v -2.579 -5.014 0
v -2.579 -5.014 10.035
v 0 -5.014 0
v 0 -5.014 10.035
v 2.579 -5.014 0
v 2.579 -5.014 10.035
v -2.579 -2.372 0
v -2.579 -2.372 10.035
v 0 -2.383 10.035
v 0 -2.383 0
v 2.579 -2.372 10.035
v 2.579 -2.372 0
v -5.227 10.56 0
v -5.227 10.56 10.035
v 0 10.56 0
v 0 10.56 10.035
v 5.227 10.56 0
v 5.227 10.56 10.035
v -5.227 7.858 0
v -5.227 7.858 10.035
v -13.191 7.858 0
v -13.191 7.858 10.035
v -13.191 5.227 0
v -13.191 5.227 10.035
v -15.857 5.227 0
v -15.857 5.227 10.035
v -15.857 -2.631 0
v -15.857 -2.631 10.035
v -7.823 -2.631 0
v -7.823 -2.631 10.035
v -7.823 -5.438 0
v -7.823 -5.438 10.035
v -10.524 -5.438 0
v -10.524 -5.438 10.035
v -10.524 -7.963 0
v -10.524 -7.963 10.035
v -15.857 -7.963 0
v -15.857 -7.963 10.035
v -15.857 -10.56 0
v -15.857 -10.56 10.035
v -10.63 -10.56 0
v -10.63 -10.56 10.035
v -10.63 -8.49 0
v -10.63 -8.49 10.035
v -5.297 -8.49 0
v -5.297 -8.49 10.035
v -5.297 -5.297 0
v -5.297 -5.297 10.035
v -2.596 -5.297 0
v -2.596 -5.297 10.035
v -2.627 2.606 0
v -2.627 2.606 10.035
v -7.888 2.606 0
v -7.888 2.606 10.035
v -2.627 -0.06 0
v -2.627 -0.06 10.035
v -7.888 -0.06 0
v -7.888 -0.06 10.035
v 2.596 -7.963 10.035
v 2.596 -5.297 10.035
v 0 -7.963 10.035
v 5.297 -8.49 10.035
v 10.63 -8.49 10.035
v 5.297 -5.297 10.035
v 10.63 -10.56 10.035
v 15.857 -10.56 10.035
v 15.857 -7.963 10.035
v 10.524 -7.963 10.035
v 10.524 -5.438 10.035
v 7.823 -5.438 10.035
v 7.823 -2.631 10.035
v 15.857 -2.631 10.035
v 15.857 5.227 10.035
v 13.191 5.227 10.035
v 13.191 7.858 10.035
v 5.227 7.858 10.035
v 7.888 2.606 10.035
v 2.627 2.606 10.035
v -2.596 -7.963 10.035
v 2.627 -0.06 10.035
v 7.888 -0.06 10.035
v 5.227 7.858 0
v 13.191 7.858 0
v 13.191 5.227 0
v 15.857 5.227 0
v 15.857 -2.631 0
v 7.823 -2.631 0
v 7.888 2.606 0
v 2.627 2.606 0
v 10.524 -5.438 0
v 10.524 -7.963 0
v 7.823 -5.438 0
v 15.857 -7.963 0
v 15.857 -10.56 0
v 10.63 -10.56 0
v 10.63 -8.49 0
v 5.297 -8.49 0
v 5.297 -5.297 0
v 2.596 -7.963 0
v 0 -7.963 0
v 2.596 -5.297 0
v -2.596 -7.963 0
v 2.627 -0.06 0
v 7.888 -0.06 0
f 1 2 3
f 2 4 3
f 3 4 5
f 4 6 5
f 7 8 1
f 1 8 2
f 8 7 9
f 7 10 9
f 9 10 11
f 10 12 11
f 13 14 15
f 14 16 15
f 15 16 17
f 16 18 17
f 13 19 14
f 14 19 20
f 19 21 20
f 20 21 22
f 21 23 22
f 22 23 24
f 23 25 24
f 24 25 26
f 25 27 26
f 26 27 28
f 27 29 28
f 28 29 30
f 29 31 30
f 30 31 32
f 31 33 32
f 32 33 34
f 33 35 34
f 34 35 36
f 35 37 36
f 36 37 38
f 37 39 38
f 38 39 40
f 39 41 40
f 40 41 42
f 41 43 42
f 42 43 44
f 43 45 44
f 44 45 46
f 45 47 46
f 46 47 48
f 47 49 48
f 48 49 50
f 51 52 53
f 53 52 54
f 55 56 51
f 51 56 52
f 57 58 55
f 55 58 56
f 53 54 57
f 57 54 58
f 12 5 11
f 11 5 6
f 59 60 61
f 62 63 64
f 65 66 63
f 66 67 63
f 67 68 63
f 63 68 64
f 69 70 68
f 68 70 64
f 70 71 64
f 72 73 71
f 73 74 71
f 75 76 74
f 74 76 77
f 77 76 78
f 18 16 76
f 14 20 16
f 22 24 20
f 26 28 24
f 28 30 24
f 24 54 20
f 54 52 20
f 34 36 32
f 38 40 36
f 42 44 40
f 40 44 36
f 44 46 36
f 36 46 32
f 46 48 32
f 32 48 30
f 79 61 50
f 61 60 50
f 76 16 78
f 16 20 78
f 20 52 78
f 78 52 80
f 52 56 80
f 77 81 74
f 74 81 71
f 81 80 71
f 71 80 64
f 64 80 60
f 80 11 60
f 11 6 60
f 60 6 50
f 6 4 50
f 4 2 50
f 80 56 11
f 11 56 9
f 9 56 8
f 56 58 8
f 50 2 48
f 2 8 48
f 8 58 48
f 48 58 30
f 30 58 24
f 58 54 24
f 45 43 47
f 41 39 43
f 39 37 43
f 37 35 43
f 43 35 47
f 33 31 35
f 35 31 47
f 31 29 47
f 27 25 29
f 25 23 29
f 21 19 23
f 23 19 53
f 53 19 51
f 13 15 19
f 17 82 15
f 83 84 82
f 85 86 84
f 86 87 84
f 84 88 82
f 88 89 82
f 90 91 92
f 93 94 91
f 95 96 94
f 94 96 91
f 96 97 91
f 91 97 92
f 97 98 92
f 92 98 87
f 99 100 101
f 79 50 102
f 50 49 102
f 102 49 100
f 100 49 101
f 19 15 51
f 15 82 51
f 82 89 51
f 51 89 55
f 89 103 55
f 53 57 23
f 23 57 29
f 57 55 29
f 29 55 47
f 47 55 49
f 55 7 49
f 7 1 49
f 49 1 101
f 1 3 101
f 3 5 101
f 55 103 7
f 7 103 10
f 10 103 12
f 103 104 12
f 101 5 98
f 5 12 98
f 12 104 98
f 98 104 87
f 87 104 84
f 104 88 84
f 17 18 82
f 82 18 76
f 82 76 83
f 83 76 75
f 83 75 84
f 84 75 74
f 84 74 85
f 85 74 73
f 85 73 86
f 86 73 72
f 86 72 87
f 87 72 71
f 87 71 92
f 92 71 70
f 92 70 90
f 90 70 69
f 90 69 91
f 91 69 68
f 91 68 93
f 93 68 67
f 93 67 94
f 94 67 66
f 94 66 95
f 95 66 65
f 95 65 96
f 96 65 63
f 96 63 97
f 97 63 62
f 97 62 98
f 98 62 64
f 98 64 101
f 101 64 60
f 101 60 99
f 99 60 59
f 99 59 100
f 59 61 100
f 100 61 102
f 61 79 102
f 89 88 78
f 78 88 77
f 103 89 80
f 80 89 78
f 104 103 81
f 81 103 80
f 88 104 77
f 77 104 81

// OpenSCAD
module invaders_v2_3b()
{
	polyhedron(
		points=[
			[-2.579453, -5.014457, 4.440892e-16],
			[-2.579455, -5.014457, 10.03545],
			[-2.384186e-06, -5.014457, 5.125999e-06],
			[-2.579455, -5.014457, 10.03545],
			[-2.384186e-06, -5.014457, 10.03545],
			[-2.384186e-06, -5.014457, 5.125999e-06],
			[-2.384186e-06, -5.014457, 5.125999e-06],
			[-2.384186e-06, -5.014457, 10.03545],
			[2.579451, -5.014457, 4.440892e-16],
			[-2.384186e-06, -5.014457, 10.03545],
			[2.579451, -5.014457, 10.03545],
			[2.579451, -5.014457, 4.440892e-16],
			[-2.579453, -2.371966, 2.220446e-16],
			[-2.579455, -2.371966, 10.03545],
			[-2.579453, -5.014457, 4.440892e-16],
			[-2.579453, -5.014457, 4.440892e-16],
			[-2.579455, -2.371966, 10.03545],
			[-2.579455, -5.014457, 10.03545],
			[-2.579455, -2.371966, 10.03545],
			[-2.579453, -2.371966, 2.220446e-16],
			[-2.384186e-06, -2.38338, 10.03545],
			[-2.579453, -2.371966, 2.220446e-16],
			[-2.384186e-06, -2.38338, 5.125999e-06],
			[-2.384186e-06, -2.38338, 10.03545],
			[-2.384186e-06, -2.38338, 10.03545],
			[-2.384186e-06, -2.38338, 5.125999e-06],
			[2.579451, -2.371966, 10.03545],
			[-2.384186e-06, -2.38338, 5.125999e-06],
			[2.579451, -2.371966, 2.220446e-16],
			[2.579451, -2.371966, 10.03545],
			[-5.227128, 10.5595, 5.125999e-06],
			[-5.227128, 10.5595, 10.03545],
			[-2.384186e-06, 10.5595, 5.125999e-06],
			[-5.227128, 10.5595, 10.03545],
			[-2.384186e-06, 10.5595, 10.03545],
			[-2.384186e-06, 10.5595, 5.125999e-06],
			[-2.384186e-06, 10.5595, 5.125999e-06],
			[-2.384186e-06, 10.5595, 10.03545],
			[5.227125, 10.5595, 1.037121e-05],
			[-2.384186e-06, 10.5595, 10.03545],
			[5.227125, 10.5595, 10.03545],
			[5.227125, 10.5595, 1.037121e-05],
			[-5.227128, 10.5595, 5.125999e-06],
			[-5.227128, 7.858232, 5.125999e-06],
			[-5.227128, 10.5595, 10.03545],
			[-5.227128, 10.5595, 10.03545],
			[-5.227128, 7.858232, 5.125999e-06],
			[-5.227128, 7.858232, 10.03545],
			[-5.227128, 7.858232, 5.125999e-06],
			[-13.1906, 7.858232, 5.125999e-06],
			[-5.227128, 7.858232, 10.03545],
			[-5.227128, 7.858232, 10.03545],
			[-13.1906, 7.858232, 5.125999e-06],
			[-13.1906, 7.858232, 10.03545],
			[-13.1906, 7.858232, 5.125999e-06],
			[-13.1906, 5.227129, 5.125999e-06],
			[-13.1906, 7.858232, 10.03545],
			[-13.1906, 7.858232, 10.03545],
			[-13.1906, 5.227129, 5.125999e-06],
			[-13.1906, 5.227129, 10.03545],
			[-13.1906, 5.227129, 5.125999e-06],
			[-15.85679, 5.227129, 5.125999e-06],
			[-13.1906, 5.227129, 10.03545],
			[-13.1906, 5.227129, 10.03545],
			[-15.85679, 5.227129, 5.125999e-06],
			[-15.85679, 5.227129, 10.03544],
			[-15.85679, 5.227129, 5.125999e-06],
			[-15.85679, -2.631102, 5.125999e-06],
			[-15.85679, 5.227129, 10.03544],
			[-15.85679, 5.227129, 10.03544],
			[-15.85679, -2.631102, 5.125999e-06],
			[-15.85679, -2.631102, 10.03544],
			[-15.85679, -2.631102, 5.125999e-06],
			[-7.823151, -2.631102, 5.125999e-06],
			[-15.85679, -2.631102, 10.03544],
			[-15.85679, -2.631102, 10.03544],
			[-7.823151, -2.631102, 5.125999e-06],
			[-7.823151, -2.631102, 10.03545],
			[-7.823151, -2.631102, 5.125999e-06],
			[-7.823151, -5.437615, 5.125999e-06],
			[-7.823151, -2.631102, 10.03545],
			[-7.823151, -2.631102, 10.03545],
			[-7.823151, -5.437615, 5.125999e-06],
			[-7.823151, -5.437615, 10.03545],
			[-7.823151, -5.437615, 5.125999e-06],
			[-10.52441, -5.437615, 5.125999e-06],
			[-7.823151, -5.437615, 10.03545],
			[-7.823151, -5.437615, 10.03545],
			[-10.52441, -5.437615, 5.125999e-06],
			[-10.52441, -5.437615, 10.03545],
			[-10.52441, -5.437615, 5.125999e-06],
			[-10.52441, -7.963473, 5.125999e-06],
			[-10.52441, -5.437615, 10.03545],
			[-10.52441, -5.437615, 10.03545],
			[-10.52441, -7.963473, 5.125999e-06],
			[-10.52441, -7.963473, 10.03545],
			[-10.52441, -7.963473, 5.125999e-06],
			[-15.85679, -7.963471, 5.125999e-06],
			[-10.52441, -7.963473, 10.03545],
			[-10.52441, -7.963473, 10.03545],
			[-15.85679, -7.963471, 5.125999e-06],
			[-15.85679, -7.963471, 10.03544],
			[-15.85679, -7.963471, 5.125999e-06],
			[-15.85679, -10.5595, 5.125999e-06],
			[-15.85679, -7.963471, 10.03544],
			[-15.85679, -7.963471, 10.03544],
			[-15.85679, -10.5595, 5.125999e-06],
			[-15.85679, -10.5595, 10.03544],
			[-15.85679, -10.5595, 5.125999e-06],
			[-10.62966, -10.5595, 5.125999e-06],
			[-15.85679, -10.5595, 10.03544],
			[-15.85679, -10.5595, 10.03544],
			[-10.62966, -10.5595, 5.125999e-06],
			[-10.62966, -10.5595, 10.03545],
			[-10.62966, -10.5595, 5.125999e-06],
			[-10.62966, -8.489693, 5.125999e-06],
			[-10.62966, -10.5595, 10.03545],
			[-10.62966, -10.5595, 10.03545],
			[-10.62966, -8.489693, 5.125999e-06],
			[-10.62966, -8.489693, 10.03545],
			[-10.62966, -8.489693, 5.125999e-06],
			[-5.297291, -8.489693, 5.125999e-06],
			[-10.62966, -8.489693, 10.03545],
			[-10.62966, -8.489693, 10.03545],
			[-5.297291, -8.489693, 5.125999e-06],
			[-5.297291, -8.489693, 10.03545],
			[-5.297291, -8.489693, 5.125999e-06],
			[-5.297291, -5.297288, 5.125999e-06],
			[-5.297291, -8.489693, 10.03545],
			[-5.297291, -8.489693, 10.03545],
			[-5.297291, -5.297288, 5.125999e-06],
			[-5.297291, -5.297288, 10.03545],
			[-5.297291, -5.297288, 5.125999e-06],
			[-2.596024, -5.297288, 5.125999e-06],
			[-5.297291, -5.297288, 10.03545],
			[-5.297291, -5.297288, 10.03545],
			[-2.596024, -5.297288, 5.125999e-06],
			[-2.596024, -5.297288, 10.03545],
			[-2.626641, 2.606297, 0.0],
			[-2.626643, 2.606297, 10.03545],
			[-7.888027, 2.606297, 0.0],
			[-7.888027, 2.606297, 0.0],
			[-2.626643, 2.606297, 10.03545],
			[-7.888027, 2.606297, 10.03545],
			[-2.626641, -0.05978751, 0.0],
			[-2.626643, -0.05978751, 10.03545],
			[-2.626641, 2.606297, 0.0],
			[-2.626641, 2.606297, 0.0],
			[-2.626643, -0.05978751, 10.03545],
			[-2.626643, 2.606297, 10.03545],
			[-7.888027, -0.05978751, 0.0],
			[-7.888027, -0.05978751, 10.03545],
			[-2.626641, -0.05978751, 0.0],
			[-2.626641, -0.05978751, 0.0],
			[-7.888027, -0.05978751, 10.03545],
			[-2.626643, -0.05978751, 10.03545],
			[-7.888027, 2.606297, 0.0],
			[-7.888027, 2.606297, 10.03545],
			[-7.888027, -0.05978751, 0.0],
			[-7.888027, -0.05978751, 0.0],
			[-7.888027, 2.606297, 10.03545],
			[-7.888027, -0.05978751, 10.03545],
			[2.579451, -2.371966, 2.220446e-16],
			[2.579451, -5.014457, 4.440892e-16],
			[2.579451, -2.371966, 10.03545],
			[2.579451, -2.371966, 10.03545],
			[2.579451, -5.014457, 4.440892e-16],
			[2.579451, -5.014457, 10.03545],
			[2.596023, -7.963475, 10.03545],
			[2.596023, -5.297288, 10.03545],
			[-2.384186e-06, -7.963473, 10.03545],
			[5.297288, -8.489693, 10.03545],
			[10.62966, -8.489693, 10.03545],
			[5.297288, -5.297288, 10.03545],
			[10.62966, -10.5595, 10.03545],
			[15.85679, -10.5595, 10.03545],
			[10.62966, -8.489693, 10.03545],
			[15.85679, -10.5595, 10.03545],
			[15.85679, -7.963475, 10.03545],
			[10.62966, -8.489693, 10.03545],
			[15.85679, -7.963475, 10.03545],
			[10.52441, -7.963475, 10.03545],
			[10.62966, -8.489693, 10.03545],
			[10.62966, -8.489693, 10.03545],
			[10.52441, -7.963475, 10.03545],
			[5.297288, -5.297288, 10.03545],
			[10.52441, -5.437615, 10.03545],
			[7.823148, -5.437615, 10.03545],
			[10.52441, -7.963475, 10.03545],
			[10.52441, -7.963475, 10.03545],
			[7.823148, -5.437615, 10.03545],
			[5.297288, -5.297288, 10.03545],
			[7.823148, -5.437615, 10.03545],
			[7.823148, -2.631102, 10.03545],
			[5.297288, -5.297288, 10.03545],
			[15.85679, -2.631104, 10.03545],
			[15.85679, 5.227127, 10.03545],
			[7.823148, -2.631102, 10.03545],
			[15.85679, 5.227127, 10.03545],
			[13.1906, 5.227127, 10.03545],
			[7.823148, -2.631102, 10.03545],
			[13.1906, 7.858231, 10.03545],
			[5.227125, 7.858231, 10.03545],
			[13.1906, 5.227127, 10.03545],
			[13.1906, 5.227127, 10.03545],
			[5.227125, 7.858231, 10.03545],
			[7.888025, 2.606296, 10.03545],
			[7.888025, 2.606296, 10.03545],
			[5.227125, 7.858231, 10.03545],
			[2.626638, 2.606296, 10.03545],
			[5.227125, 10.5595, 10.03545],
			[-2.384186e-06, 10.5595, 10.03545],
			[5.227125, 7.858231, 10.03545],
			[-5.227128, 10.5595, 10.03545],
			[-5.227128, 7.858232, 10.03545],
			[-2.384186e-06, 10.5595, 10.03545],
			[-13.1906, 7.858232, 10.03545],
			[-13.1906, 5.227129, 10.03545],
			[-5.227128, 7.858232, 10.03545],
			[-15.85679, 5.227129, 10.03544],
			[-15.85679, -2.631102, 10.03544],
			[-13.1906, 5.227129, 10.03545],
			[-15.85679, -2.631102, 10.03544],
			[-7.823151, -2.631102, 10.03545],
			[-13.1906, 5.227129, 10.03545],
			[-13.1906, 5.227129, 10.03545],
			[-7.888027, 2.606297, 10.03545],
			[-5.227128, 7.858232, 10.03545],
			[-7.888027, 2.606297, 10.03545],
			[-2.626643, 2.606297, 10.03545],
			[-5.227128, 7.858232, 10.03545],
			[-10.52441, -5.437615, 10.03545],
			[-10.52441, -7.963473, 10.03545],
			[-7.823151, -5.437615, 10.03545],
			[-15.85679, -7.963471, 10.03544],
			[-15.85679, -10.5595, 10.03544],
			[-10.52441, -7.963473, 10.03545],
			[-10.62966, -10.5595, 10.03545],
			[-10.62966, -8.489693, 10.03545],
			[-15.85679, -10.5595, 10.03544],
			[-15.85679, -10.5595, 10.03544],
			[-10.62966, -8.489693, 10.03545],
			[-10.52441, -7.963473, 10.03545],
			[-10.62966, -8.489693, 10.03545],
			[-5.297291, -8.489693, 10.03545],
			[-10.52441, -7.963473, 10.03545],
			[-10.52441, -7.963473, 10.03545],
			[-5.297291, -8.489693, 10.03545],
			[-7.823151, -5.437615, 10.03545],
			[-5.297291, -8.489693, 10.03545],
			[-5.297291, -5.297288, 10.03545],
			[-7.823151, -5.437615, 10.03545],
			[-7.823151, -5.437615, 10.03545],
			[-5.297291, -5.297288, 10.03545],
			[-7.823151, -2.631102, 10.03545],
			[-2.596024, -7.963473, 10.03545],
			[-2.384186e-06, -7.963473, 10.03545],
			[-2.596024, -5.297288, 10.03545],
			[-2.384186e-06, -7.963473, 10.03545],
			[2.596023, -5.297288, 10.03545],
			[-2.596024, -5.297288, 10.03545],
			[5.227125, 7.858231, 10.03545],
			[-2.384186e-06, 10.5595, 10.03545],
			[2.626638, 2.606296, 10.03545],
			[-2.384186e-06, 10.5595, 10.03545],
			[-5.227128, 7.858232, 10.03545],
			[2.626638, 2.606296, 10.03545],
			[-5.227128, 7.858232, 10.03545],
			[-2.626643, 2.606297, 10.03545],
			[2.626638, 2.606296, 10.03545],
			[2.626638, 2.606296, 10.03545],
			[-2.626643, 2.606297, 10.03545],
			[2.626638, -0.05978751, 10.03545],
			[-2.626643, 2.606297, 10.03545],
			[-2.626643, -0.05978751, 10.03545],
			[2.626638, -0.05978751, 10.03545],
			[7.888025, 2.606296, 10.03545],
			[7.888025, -0.05978942, 10.03545],
			[13.1906, 5.227127, 10.03545],
			[13.1906, 5.227127, 10.03545],
			[7.888025, -0.05978942, 10.03545],
			[7.823148, -2.631102, 10.03545],
			[7.888025, -0.05978942, 10.03545],
			[2.626638, -0.05978751, 10.03545],
			[7.823148, -2.631102, 10.03545],
			[7.823148, -2.631102, 10.03545],
			[2.626638, -0.05978751, 10.03545],
			[5.297288, -5.297288, 10.03545],
			[5.297288, -5.297288, 10.03545],
			[2.626638, -0.05978751, 10.03545],
			[2.596023, -5.297288, 10.03545],
			[2.626638, -0.05978751, 10.03545],
			[2.579451, -2.371966, 10.03545],
			[2.596023, -5.297288, 10.03545],
			[2.579451, -2.371966, 10.03545],
			[2.579451, -5.014457, 10.03545],
			[2.596023, -5.297288, 10.03545],
			[2.596023, -5.297288, 10.03545],
			[2.579451, -5.014457, 10.03545],
			[-2.596024, -5.297288, 10.03545],
			[2.579451, -5.014457, 10.03545],
			[-2.384186e-06, -5.014457, 10.03545],
			[-2.596024, -5.297288, 10.03545],
			[-2.384186e-06, -5.014457, 10.03545],
			[-2.579455, -5.014457, 10.03545],
			[-2.596024, -5.297288, 10.03545],
			[2.626638, -0.05978751, 10.03545],
			[-2.626643, -0.05978751, 10.03545],
			[2.579451, -2.371966, 10.03545],
			[2.579451, -2.371966, 10.03545],
			[-2.626643, -0.05978751, 10.03545],
			[-2.384186e-06, -2.38338, 10.03545],
			[-2.384186e-06, -2.38338, 10.03545],
			[-2.626643, -0.05978751, 10.03545],
			[-2.579455, -2.371966, 10.03545],
			[-2.626643, -0.05978751, 10.03545],
			[-7.888027, -0.05978751, 10.03545],
			[-2.579455, -2.371966, 10.03545],
			[-2.596024, -5.297288, 10.03545],
			[-2.579455, -5.014457, 10.03545],
			[-5.297291, -5.297288, 10.03545],
			[-2.579455, -5.014457, 10.03545],
			[-2.579455, -2.371966, 10.03545],
			[-5.297291, -5.297288, 10.03545],
			[-2.579455, -2.371966, 10.03545],
			[-7.888027, -0.05978751, 10.03545],
			[-5.297291, -5.297288, 10.03545],
			[-5.297291, -5.297288, 10.03545],
			[-7.888027, -0.05978751, 10.03545],
			[-7.823151, -2.631102, 10.03545],
			[-7.823151, -2.631102, 10.03545],
			[-7.888027, -0.05978751, 10.03545],
			[-13.1906, 5.227129, 10.03545],
			[-7.888027, -0.05978751, 10.03545],
			[-7.888027, 2.606297, 10.03545],
			[-13.1906, 5.227129, 10.03545],
			[-5.297291, -8.489693, 5.125999e-06],
			[-10.62966, -8.489693, 5.125999e-06],
			[-5.297291, -5.297288, 5.125999e-06],
			[-10.62966, -10.5595, 5.125999e-06],
			[-15.85679, -10.5595, 5.125999e-06],
			[-10.62966, -8.489693, 5.125999e-06],
			[-15.85679, -10.5595, 5.125999e-06],
			[-15.85679, -7.963471, 5.125999e-06],
			[-10.62966, -8.489693, 5.125999e-06],
			[-15.85679, -7.963471, 5.125999e-06],
			[-10.52441, -7.963473, 5.125999e-06],
			[-10.62966, -8.489693, 5.125999e-06],
			[-10.62966, -8.489693, 5.125999e-06],
			[-10.52441, -7.963473, 5.125999e-06],
			[-5.297291, -5.297288, 5.125999e-06],
			[-10.52441, -5.437615, 5.125999e-06],
			[-7.823151, -5.437615, 5.125999e-06],
			[-10.52441, -7.963473, 5.125999e-06],
			[-10.52441, -7.963473, 5.125999e-06],
			[-7.823151, -5.437615, 5.125999e-06],
			[-5.297291, -5.297288, 5.125999e-06],
			[-7.823151, -5.437615, 5.125999e-06],
			[-7.823151, -2.631102, 5.125999e-06],
			[-5.297291, -5.297288, 5.125999e-06],
			[-15.85679, -2.631102, 5.125999e-06],
			[-15.85679, 5.227129, 5.125999e-06],
			[-7.823151, -2.631102, 5.125999e-06],
			[-15.85679, 5.227129, 5.125999e-06],
			[-13.1906, 5.227129, 5.125999e-06],
			[-7.823151, -2.631102, 5.125999e-06],
			[-13.1906, 7.858232, 5.125999e-06],
			[-5.227128, 7.858232, 5.125999e-06],
			[-13.1906, 5.227129, 5.125999e-06],
			[-13.1906, 5.227129, 5.125999e-06],
			[-5.227128, 7.858232, 5.125999e-06],
			[-7.888027, 2.606297, 0.0],
			[-7.888027, 2.606297, 0.0],
			[-5.227128, 7.858232, 5.125999e-06],
			[-2.626641, 2.606297, 0.0],
			[-5.227128, 10.5595, 5.125999e-06],
			[-2.384186e-06, 10.5595, 5.125999e-06],
			[-5.227128, 7.858232, 5.125999e-06],
			[5.227125, 10.5595, 1.037121e-05],
			[5.227125, 7.858231, 1.037121e-05],
			[-2.384186e-06, 10.5595, 5.125999e-06],
			[13.1906, 7.858231, 1.037121e-05],
			[13.1906, 5.227127, 1.037121e-05],
			[5.227125, 7.858231, 1.037121e-05],
			[15.85679, 5.227127, 1.037121e-05],
			[15.85679, -2.631104, 1.037121e-05],
			[13.1906, 5.227127, 1.037121e-05],
			[15.85679, -2.631104, 1.037121e-05],
			[7.823148, -2.631102, 1.037121e-05],
			[13.1906, 5.227127, 1.037121e-05],
			[13.1906, 5.227127, 1.037121e-05],
			[7.888025, 2.606296, 5.125999e-06],
			[5.227125, 7.858231, 1.037121e-05],
			[7.888025, 2.606296, 5.125999e-06],
			[2.626638, 2.606296, 0.0],
			[5.227125, 7.858231, 1.037121e-05],
			[10.52441, -5.437615, 1.037121e-05],
			[10.52441, -7.963475, 1.037121e-05],
			[7.823148, -5.437615, 1.037121e-05],
			[15.85679, -7.963475, 1.037121e-05],
			[15.85679, -10.5595, 1.037121e-05],
			[10.52441, -7.963475, 1.037121e-05],
			[10.62966, -10.5595, 1.037121e-05],
			[10.62966, -8.489693, 1.037121e-05],
			[15.85679, -10.5595, 1.037121e-05],
			[15.85679, -10.5595, 1.037121e-05],
			[10.62966, -8.489693, 1.037121e-05],
			[10.52441, -7.963475, 1.037121e-05],
			[10.62966, -8.489693, 1.037121e-05],
			[5.297288, -8.489693, 1.037121e-05],
			[10.52441, -7.963475, 1.037121e-05],
			[10.52441, -7.963475, 1.037121e-05],
			[5.297288, -8.489693, 1.037121e-05],
			[7.823148, -5.437615, 1.037121e-05],
			[5.297288, -8.489693, 1.037121e-05],
			[5.297288, -5.297288, 1.037121e-05],
			[7.823148, -5.437615, 1.037121e-05],
			[7.823148, -5.437615, 1.037121e-05],
			[5.297288, -5.297288, 1.037121e-05],
			[7.823148, -2.631102, 1.037121e-05],
			[2.596023, -7.963475, 1.037121e-05],
			[-2.384186e-06, -7.963473, 5.125999e-06],
			[2.596023, -5.297288, 1.037121e-05],
			[-2.596024, -7.963473, 10.03545],
			[-2.596024, -5.297288, 10.03545],
			[-2.596024, -7.963473, 5.125999e-06],
			[-2.596024, -5.297288, 10.03545],
			[-2.596024, -5.297288, 5.125999e-06],
			[-2.596024, -7.963473, 5.125999e-06],
			[-2.596024, -7.963473, 5.125999e-06],
			[-2.596024, -5.297288, 5.125999e-06],
			[-2.384186e-06, -7.963473, 5.125999e-06],
			[-2.384186e-06, -7.963473, 5.125999e-06],
			[-2.596024, -5.297288, 5.125999e-06],
			[2.596023, -5.297288, 1.037121e-05],
			[-5.227128, 7.858232, 5.125999e-06],
			[-2.384186e-06, 10.5595, 5.125999e-06],
			[-2.626641, 2.606297, 0.0],
			[-2.384186e-06, 10.5595, 5.125999e-06],
			[5.227125, 7.858231, 1.037121e-05],
			[-2.626641, 2.606297, 0.0],
			[5.227125, 7.858231, 1.037121e-05],
			[2.626638, 2.606296, 0.0],
			[-2.626641, 2.606297, 0.0],
			[-2.626641, 2.606297, 0.0],
			[2.626638, 2.606296, 0.0],
			[-2.626641, -0.05978751, 0.0],
			[2.626638, 2.606296, 0.0],
			[2.626638, -0.05978751, 0.0],
			[-2.626641, -0.05978751, 0.0],
			[-7.888027, 2.606297, 0.0],
			[-7.888027, -0.05978751, 0.0],
			[-13.1906, 5.227129, 5.125999e-06],
			[-13.1906, 5.227129, 5.125999e-06],
			[-7.888027, -0.05978751, 0.0],
			[-7.823151, -2.631102, 5.125999e-06],
			[-7.888027, -0.05978751, 0.0],
			[-2.626641, -0.05978751, 0.0],
			[-7.823151, -2.631102, 5.125999e-06],
			[-7.823151, -2.631102, 5.125999e-06],
			[-2.626641, -0.05978751, 0.0],
			[-5.297291, -5.297288, 5.125999e-06],
			[-5.297291, -5.297288, 5.125999e-06],
			[-2.626641, -0.05978751, 0.0],
			[-2.596024, -5.297288, 5.125999e-06],
			[-2.626641, -0.05978751, 0.0],
			[-2.579453, -2.371966, 2.220446e-16],
			[-2.596024, -5.297288, 5.125999e-06],
			[-2.579453, -2.371966, 2.220446e-16],
			[-2.579453, -5.014457, 4.440892e-16],
			[-2.596024, -5.297288, 5.125999e-06],
			[-2.596024, -5.297288, 5.125999e-06],
			[-2.579453, -5.014457, 4.440892e-16],
			[2.596023, -5.297288, 1.037121e-05],
			[-2.579453, -5.014457, 4.440892e-16],
			[-2.384186e-06, -5.014457, 5.125999e-06],
			[2.596023, -5.297288, 1.037121e-05],
			[-2.384186e-06, -5.014457, 5.125999e-06],
			[2.579451, -5.014457, 4.440892e-16],
			[2.596023, -5.297288, 1.037121e-05],
			[-2.626641, -0.05978751, 0.0],
			[2.626638, -0.05978751, 0.0],
			[-2.579453, -2.371966, 2.220446e-16],
			[-2.579453, -2.371966, 2.220446e-16],
			[2.626638, -0.05978751, 0.0],
			[-2.384186e-06, -2.38338, 5.125999e-06],
			[-2.384186e-06, -2.38338, 5.125999e-06],
			[2.626638, -0.05978751, 0.0],
			[2.579451, -2.371966, 2.220446e-16],
			[2.626638, -0.05978751, 0.0],
			[7.888025, -0.05978942, 5.125999e-06],
			[2.579451, -2.371966, 2.220446e-16],
			[2.596023, -5.297288, 1.037121e-05],
			[2.579451, -5.014457, 4.440892e-16],
			[5.297288, -5.297288, 1.037121e-05],
			[2.579451, -5.014457, 4.440892e-16],
			[2.579451, -2.371966, 2.220446e-16],
			[5.297288, -5.297288, 1.037121e-05],
			[2.579451, -2.371966, 2.220446e-16],
			[7.888025, -0.05978942, 5.125999e-06],
			[5.297288, -5.297288, 1.037121e-05],
			[5.297288, -5.297288, 1.037121e-05],
			[7.888025, -0.05978942, 5.125999e-06],
			[7.823148, -2.631102, 1.037121e-05],
			[7.823148, -2.631102, 1.037121e-05],
			[7.888025, -0.05978942, 5.125999e-06],
			[13.1906, 5.227127, 1.037121e-05],
			[7.888025, -0.05978942, 5.125999e-06],
			[7.888025, 2.606296, 5.125999e-06],
			[13.1906, 5.227127, 1.037121e-05],
			[5.227125, 10.5595, 1.037121e-05],
			[5.227125, 10.5595, 10.03545],
			[5.227125, 7.858231, 1.037121e-05],
			[5.227125, 7.858231, 1.037121e-05],
			[5.227125, 10.5595, 10.03545],
			[5.227125, 7.858231, 10.03545],
			[5.227125, 7.858231, 1.037121e-05],
			[5.227125, 7.858231, 10.03545],
			[13.1906, 7.858231, 1.037121e-05],
			[13.1906, 7.858231, 1.037121e-05],
			[5.227125, 7.858231, 10.03545],
			[13.1906, 7.858231, 10.03545],
			[13.1906, 7.858231, 1.037121e-05],
			[13.1906, 7.858231, 10.03545],
			[13.1906, 5.227127, 1.037121e-05],
			[13.1906, 5.227127, 1.037121e-05],
			[13.1906, 7.858231, 10.03545],
			[13.1906, 5.227127, 10.03545],
			[13.1906, 5.227127, 1.037121e-05],
			[13.1906, 5.227127, 10.03545],
			[15.85679, 5.227127, 1.037121e-05],
			[15.85679, 5.227127, 1.037121e-05],
			[13.1906, 5.227127, 10.03545],
			[15.85679, 5.227127, 10.03545],
			[15.85679, 5.227127, 1.037121e-05],
			[15.85679, 5.227127, 10.03545],
			[15.85679, -2.631104, 1.037121e-05],
			[15.85679, -2.631104, 1.037121e-05],
			[15.85679, 5.227127, 10.03545],
			[15.85679, -2.631104, 10.03545],
			[15.85679, -2.631104, 1.037121e-05],
			[15.85679, -2.631104, 10.03545],
			[7.823148, -2.631102, 1.037121e-05],
			[7.823148, -2.631102, 1.037121e-05],
			[15.85679, -2.631104, 10.03545],
			[7.823148, -2.631102, 10.03545],
			[7.823148, -2.631102, 1.037121e-05],
			[7.823148, -2.631102, 10.03545],
			[7.823148, -5.437615, 1.037121e-05],
			[7.823148, -5.437615, 1.037121e-05],
			[7.823148, -2.631102, 10.03545],
			[7.823148, -5.437615, 10.03545],
			[7.823148, -5.437615, 1.037121e-05],
			[7.823148, -5.437615, 10.03545],
			[10.52441, -5.437615, 1.037121e-05],
			[10.52441, -5.437615, 1.037121e-05],
			[7.823148, -5.437615, 10.03545],
			[10.52441, -5.437615, 10.03545],
			[10.52441, -5.437615, 1.037121e-05],
			[10.52441, -5.437615, 10.03545],
			[10.52441, -7.963475, 1.037121e-05],
			[10.52441, -7.963475, 1.037121e-05],
			[10.52441, -5.437615, 10.03545],
			[10.52441, -7.963475, 10.03545],
			[10.52441, -7.963475, 1.037121e-05],
			[10.52441, -7.963475, 10.03545],
			[15.85679, -7.963475, 1.037121e-05],
			[15.85679, -7.963475, 1.037121e-05],
			[10.52441, -7.963475, 10.03545],
			[15.85679, -7.963475, 10.03545],
			[15.85679, -7.963475, 1.037121e-05],
			[15.85679, -7.963475, 10.03545],
			[15.85679, -10.5595, 1.037121e-05],
			[15.85679, -10.5595, 1.037121e-05],
			[15.85679, -7.963475, 10.03545],
			[15.85679, -10.5595, 10.03545],
			[15.85679, -10.5595, 1.037121e-05],
			[15.85679, -10.5595, 10.03545],
			[10.62966, -10.5595, 1.037121e-05],
			[10.62966, -10.5595, 1.037121e-05],
			[15.85679, -10.5595, 10.03545],
			[10.62966, -10.5595, 10.03545],
			[10.62966, -10.5595, 1.037121e-05],
			[10.62966, -10.5595, 10.03545],
			[10.62966, -8.489693, 1.037121e-05],
			[10.62966, -8.489693, 1.037121e-05],
			[10.62966, -10.5595, 10.03545],
			[10.62966, -8.489693, 10.03545],
			[10.62966, -8.489693, 1.037121e-05],
			[10.62966, -8.489693, 10.03545],
			[5.297288, -8.489693, 1.037121e-05],
			[5.297288, -8.489693, 1.037121e-05],
			[10.62966, -8.489693, 10.03545],
			[5.297288, -8.489693, 10.03545],
			[5.297288, -8.489693, 1.037121e-05],
			[5.297288, -8.489693, 10.03545],
			[5.297288, -5.297288, 1.037121e-05],
			[5.297288, -5.297288, 1.037121e-05],
			[5.297288, -8.489693, 10.03545],
			[5.297288, -5.297288, 10.03545],
			[5.297288, -5.297288, 1.037121e-05],
			[5.297288, -5.297288, 10.03545],
			[2.596023, -5.297288, 1.037121e-05],
			[2.596023, -5.297288, 1.037121e-05],
			[5.297288, -5.297288, 10.03545],
			[2.596023, -5.297288, 10.03545],
			[2.596023, -5.297288, 1.037121e-05],
			[2.596023, -5.297288, 10.03545],
			[2.596023, -7.963475, 1.037121e-05],
			[2.596023, -7.963475, 1.037121e-05],
			[2.596023, -5.297288, 10.03545],
			[2.596023, -7.963475, 10.03545],
			[2.596023, -7.963475, 1.037121e-05],
			[2.596023, -7.963475, 10.03545],
			[-2.384186e-06, -7.963473, 5.125999e-06],
			[2.596023, -7.963475, 10.03545],
			[-2.384186e-06, -7.963473, 10.03545],
			[-2.384186e-06, -7.963473, 5.125999e-06],
			[-2.384186e-06, -7.963473, 5.125999e-06],
			[-2.384186e-06, -7.963473, 10.03545],
			[-2.596024, -7.963473, 5.125999e-06],
			[-2.384186e-06, -7.963473, 10.03545],
			[-2.596024, -7.963473, 10.03545],
			[-2.596024, -7.963473, 5.125999e-06],
			[2.626638, 2.606296, 0.0],
			[7.888025, 2.606296, 5.125999e-06],
			[2.626638, 2.606296, 10.03545],
			[2.626638, 2.606296, 10.03545],
			[7.888025, 2.606296, 5.125999e-06],
			[7.888025, 2.606296, 10.03545],
			[2.626638, -0.05978751, 0.0],
			[2.626638, 2.606296, 0.0],
			[2.626638, -0.05978751, 10.03545],
			[2.626638, -0.05978751, 10.03545],
			[2.626638, 2.606296, 0.0],
			[2.626638, 2.606296, 10.03545],
			[7.888025, -0.05978942, 5.125999e-06],
			[2.626638, -0.05978751, 0.0],
			[7.888025, -0.05978942, 10.03545],
			[7.888025, -0.05978942, 10.03545],
			[2.626638, -0.05978751, 0.0],
			[2.626638, -0.05978751, 10.03545],
			[7.888025, 2.606296, 5.125999e-06],
			[7.888025, -0.05978942, 5.125999e-06],
			[7.888025, 2.606296, 10.03545],
			[7.888025, 2.606296, 10.03545],
			[7.888025, -0.05978942, 5.125999e-06],
			[7.888025, -0.05978942, 10.03545]
		],
		faces=[
			[0, 1, 2],
			[3, 4, 5],
			[6, 7, 8],
			[9, 10, 11],
			[12, 13, 14],
			[15, 16, 17],
			[18, 19, 20],
			[21, 22, 23],
			[24, 25, 26],
			[27, 28, 29],
			[30, 31, 32],
			[33, 34, 35],
			[36, 37, 38],
			[39, 40, 41],
			[42, 43, 44],
			[45, 46, 47],
			[48, 49, 50],
			[51, 52, 53],
			[54, 55, 56],
			[57, 58, 59],
			[60, 61, 62],
			[63, 64, 65],
			[66, 67, 68],
			[69, 70, 71],
			[72, 73, 74],
			[75, 76, 77],
			[78, 79, 80],
			[81, 82, 83],
			[84, 85, 86],
			[87, 88, 89],
			[90, 91, 92],
			[93, 94, 95],
			[96, 97, 98],
			[99, 100, 101],
			[102, 103, 104],
			[105, 106, 107],
			[108, 109, 110],
			[111, 112, 113],
			[114, 115, 116],
			[117, 118, 119],
			[120, 121, 122],
			[123, 124, 125],
			[126, 127, 128],
			[129, 130, 131],
			[132, 133, 134],
			[135, 136, 137],
			[138, 139, 140],
			[141, 142, 143],
			[144, 145, 146],
			[147, 148, 149],
			[150, 151, 152],
			[153, 154, 155],
			[156, 157, 158],
			[159, 160, 161],
			[162, 163, 164],
			[165, 166, 167],
			[168, 169, 170],
			[171, 172, 173],
			[174, 175, 176],
			[177, 178, 179],
			[180, 181, 182],
			[183, 184, 185],
			[186, 187, 188],
			[189, 190, 191],
			[192, 193, 194],
			[195, 196, 197],
			[198, 199, 200],
			[201, 202, 203],
			[204, 205, 206],
			[207, 208, 209],
			[210, 211, 212],
			[213, 214, 215],
			[216, 217, 218],
			[219, 220, 221],
			[222, 223, 224],
			[225, 226, 227],
			[228, 229, 230],
			[231, 232, 233],
			[234, 235, 236],
			[237, 238, 239],
			[240, 241, 242],
			[243, 244, 245],
			[246, 247, 248],
			[249, 250, 251],
			[252, 253, 254],
			[255, 256, 257],
			[258, 259, 260],
			[261, 262, 263],
			[264, 265, 266],
			[267, 268, 269],
			[270, 271, 272],
			[273, 274, 275],
			[276, 277, 278],
			[279, 280, 281],
			[282, 283, 284],
			[285, 286, 287],
			[288, 289, 290],
			[291, 292, 293],
			[294, 295, 296],
			[297, 298, 299],
			[300, 301, 302],
			[303, 304, 305],
			[306, 307, 308],
			[309, 310, 311],
			[312, 313, 314],
			[315, 316, 317],
			[318, 319, 320],
			[321, 322, 323],
			[324, 325, 326],
			[327, 328, 329],
			[330, 331, 332],
			[333, 334, 335],
			[336, 337, 338],
			[339, 340, 341],
			[342, 343, 344],
			[345, 346, 347],
			[348, 349, 350],
			[351, 352, 353],
			[354, 355, 356],
			[357, 358, 359],
			[360, 361, 362],
			[363, 364, 365],
			[366, 367, 368],
			[369, 370, 371],
			[372, 373, 374],
			[375, 376, 377],
			[378, 379, 380],
			[381, 382, 383],
			[384, 385, 386],
			[387, 388, 389],
			[390, 391, 392],
			[393, 394, 395],
			[396, 397, 398],
			[399, 400, 401],
			[402, 403, 404],
			[405, 406, 407],
			[408, 409, 410],
			[411, 412, 413],
			[414, 415, 416],
			[417, 418, 419],
			[420, 421, 422],
			[423, 424, 425],
			[426, 427, 428],
			[429, 430, 431],
			[432, 433, 434],
			[435, 436, 437],
			[438, 439, 440],
			[441, 442, 443],
			[444, 445, 446],
			[447, 448, 449],
			[450, 451, 452],
			[453, 454, 455],
			[456, 457, 458],
			[459, 460, 461],
			[462, 463, 464],
			[465, 466, 467],
			[468, 469, 470],
			[471, 472, 473],
			[474, 475, 476],
			[477, 478, 479],
			[480, 481, 482],
			[483, 484, 485],
			[486, 487, 488],
			[489, 490, 491],
			[492, 493, 494],
			[495, 496, 497],
			[498, 499, 500],
			[501, 502, 503],
			[504, 505, 506],
			[507, 508, 509],
			[510, 511, 512],
			[513, 514, 515],
			[516, 517, 518],
			[519, 520, 521],
			[522, 523, 524],
			[525, 526, 527],
			[528, 529, 530],
			[531, 532, 533],
			[534, 535, 536],
			[537, 538, 539],
			[540, 541, 542],
			[543, 544, 545],
			[546, 547, 548],
			[549, 550, 551],
			[552, 553, 554],
			[555, 556, 557],
			[558, 559, 560],
			[561, 562, 563],
			[564, 565, 566],
			[567, 568, 569],
			[570, 571, 572],
			[573, 574, 575],
			[576, 577, 578],
			[579, 580, 581],
			[582, 583, 584],
			[585, 586, 587],
			[588, 589, 590],
			[591, 592, 593],
			[594, 595, 596],
			[597, 598, 599],
			[600, 601, 602],
			[603, 604, 605],
			[606, 607, 608],
			[609, 610, 611],
			[612, 613, 614],
			[615, 616, 617],
			[618, 619, 620],
			[621, 622, 623],
			[624, 625, 626],
			[627, 628, 629],
			[630, 631, 632],
			[633, 634, 635],
			[636, 637, 638],
			[639, 640, 641],
			[642, 643, 644],
			[645, 646, 647]
		]
	);
}

invaders_v2_3b();
